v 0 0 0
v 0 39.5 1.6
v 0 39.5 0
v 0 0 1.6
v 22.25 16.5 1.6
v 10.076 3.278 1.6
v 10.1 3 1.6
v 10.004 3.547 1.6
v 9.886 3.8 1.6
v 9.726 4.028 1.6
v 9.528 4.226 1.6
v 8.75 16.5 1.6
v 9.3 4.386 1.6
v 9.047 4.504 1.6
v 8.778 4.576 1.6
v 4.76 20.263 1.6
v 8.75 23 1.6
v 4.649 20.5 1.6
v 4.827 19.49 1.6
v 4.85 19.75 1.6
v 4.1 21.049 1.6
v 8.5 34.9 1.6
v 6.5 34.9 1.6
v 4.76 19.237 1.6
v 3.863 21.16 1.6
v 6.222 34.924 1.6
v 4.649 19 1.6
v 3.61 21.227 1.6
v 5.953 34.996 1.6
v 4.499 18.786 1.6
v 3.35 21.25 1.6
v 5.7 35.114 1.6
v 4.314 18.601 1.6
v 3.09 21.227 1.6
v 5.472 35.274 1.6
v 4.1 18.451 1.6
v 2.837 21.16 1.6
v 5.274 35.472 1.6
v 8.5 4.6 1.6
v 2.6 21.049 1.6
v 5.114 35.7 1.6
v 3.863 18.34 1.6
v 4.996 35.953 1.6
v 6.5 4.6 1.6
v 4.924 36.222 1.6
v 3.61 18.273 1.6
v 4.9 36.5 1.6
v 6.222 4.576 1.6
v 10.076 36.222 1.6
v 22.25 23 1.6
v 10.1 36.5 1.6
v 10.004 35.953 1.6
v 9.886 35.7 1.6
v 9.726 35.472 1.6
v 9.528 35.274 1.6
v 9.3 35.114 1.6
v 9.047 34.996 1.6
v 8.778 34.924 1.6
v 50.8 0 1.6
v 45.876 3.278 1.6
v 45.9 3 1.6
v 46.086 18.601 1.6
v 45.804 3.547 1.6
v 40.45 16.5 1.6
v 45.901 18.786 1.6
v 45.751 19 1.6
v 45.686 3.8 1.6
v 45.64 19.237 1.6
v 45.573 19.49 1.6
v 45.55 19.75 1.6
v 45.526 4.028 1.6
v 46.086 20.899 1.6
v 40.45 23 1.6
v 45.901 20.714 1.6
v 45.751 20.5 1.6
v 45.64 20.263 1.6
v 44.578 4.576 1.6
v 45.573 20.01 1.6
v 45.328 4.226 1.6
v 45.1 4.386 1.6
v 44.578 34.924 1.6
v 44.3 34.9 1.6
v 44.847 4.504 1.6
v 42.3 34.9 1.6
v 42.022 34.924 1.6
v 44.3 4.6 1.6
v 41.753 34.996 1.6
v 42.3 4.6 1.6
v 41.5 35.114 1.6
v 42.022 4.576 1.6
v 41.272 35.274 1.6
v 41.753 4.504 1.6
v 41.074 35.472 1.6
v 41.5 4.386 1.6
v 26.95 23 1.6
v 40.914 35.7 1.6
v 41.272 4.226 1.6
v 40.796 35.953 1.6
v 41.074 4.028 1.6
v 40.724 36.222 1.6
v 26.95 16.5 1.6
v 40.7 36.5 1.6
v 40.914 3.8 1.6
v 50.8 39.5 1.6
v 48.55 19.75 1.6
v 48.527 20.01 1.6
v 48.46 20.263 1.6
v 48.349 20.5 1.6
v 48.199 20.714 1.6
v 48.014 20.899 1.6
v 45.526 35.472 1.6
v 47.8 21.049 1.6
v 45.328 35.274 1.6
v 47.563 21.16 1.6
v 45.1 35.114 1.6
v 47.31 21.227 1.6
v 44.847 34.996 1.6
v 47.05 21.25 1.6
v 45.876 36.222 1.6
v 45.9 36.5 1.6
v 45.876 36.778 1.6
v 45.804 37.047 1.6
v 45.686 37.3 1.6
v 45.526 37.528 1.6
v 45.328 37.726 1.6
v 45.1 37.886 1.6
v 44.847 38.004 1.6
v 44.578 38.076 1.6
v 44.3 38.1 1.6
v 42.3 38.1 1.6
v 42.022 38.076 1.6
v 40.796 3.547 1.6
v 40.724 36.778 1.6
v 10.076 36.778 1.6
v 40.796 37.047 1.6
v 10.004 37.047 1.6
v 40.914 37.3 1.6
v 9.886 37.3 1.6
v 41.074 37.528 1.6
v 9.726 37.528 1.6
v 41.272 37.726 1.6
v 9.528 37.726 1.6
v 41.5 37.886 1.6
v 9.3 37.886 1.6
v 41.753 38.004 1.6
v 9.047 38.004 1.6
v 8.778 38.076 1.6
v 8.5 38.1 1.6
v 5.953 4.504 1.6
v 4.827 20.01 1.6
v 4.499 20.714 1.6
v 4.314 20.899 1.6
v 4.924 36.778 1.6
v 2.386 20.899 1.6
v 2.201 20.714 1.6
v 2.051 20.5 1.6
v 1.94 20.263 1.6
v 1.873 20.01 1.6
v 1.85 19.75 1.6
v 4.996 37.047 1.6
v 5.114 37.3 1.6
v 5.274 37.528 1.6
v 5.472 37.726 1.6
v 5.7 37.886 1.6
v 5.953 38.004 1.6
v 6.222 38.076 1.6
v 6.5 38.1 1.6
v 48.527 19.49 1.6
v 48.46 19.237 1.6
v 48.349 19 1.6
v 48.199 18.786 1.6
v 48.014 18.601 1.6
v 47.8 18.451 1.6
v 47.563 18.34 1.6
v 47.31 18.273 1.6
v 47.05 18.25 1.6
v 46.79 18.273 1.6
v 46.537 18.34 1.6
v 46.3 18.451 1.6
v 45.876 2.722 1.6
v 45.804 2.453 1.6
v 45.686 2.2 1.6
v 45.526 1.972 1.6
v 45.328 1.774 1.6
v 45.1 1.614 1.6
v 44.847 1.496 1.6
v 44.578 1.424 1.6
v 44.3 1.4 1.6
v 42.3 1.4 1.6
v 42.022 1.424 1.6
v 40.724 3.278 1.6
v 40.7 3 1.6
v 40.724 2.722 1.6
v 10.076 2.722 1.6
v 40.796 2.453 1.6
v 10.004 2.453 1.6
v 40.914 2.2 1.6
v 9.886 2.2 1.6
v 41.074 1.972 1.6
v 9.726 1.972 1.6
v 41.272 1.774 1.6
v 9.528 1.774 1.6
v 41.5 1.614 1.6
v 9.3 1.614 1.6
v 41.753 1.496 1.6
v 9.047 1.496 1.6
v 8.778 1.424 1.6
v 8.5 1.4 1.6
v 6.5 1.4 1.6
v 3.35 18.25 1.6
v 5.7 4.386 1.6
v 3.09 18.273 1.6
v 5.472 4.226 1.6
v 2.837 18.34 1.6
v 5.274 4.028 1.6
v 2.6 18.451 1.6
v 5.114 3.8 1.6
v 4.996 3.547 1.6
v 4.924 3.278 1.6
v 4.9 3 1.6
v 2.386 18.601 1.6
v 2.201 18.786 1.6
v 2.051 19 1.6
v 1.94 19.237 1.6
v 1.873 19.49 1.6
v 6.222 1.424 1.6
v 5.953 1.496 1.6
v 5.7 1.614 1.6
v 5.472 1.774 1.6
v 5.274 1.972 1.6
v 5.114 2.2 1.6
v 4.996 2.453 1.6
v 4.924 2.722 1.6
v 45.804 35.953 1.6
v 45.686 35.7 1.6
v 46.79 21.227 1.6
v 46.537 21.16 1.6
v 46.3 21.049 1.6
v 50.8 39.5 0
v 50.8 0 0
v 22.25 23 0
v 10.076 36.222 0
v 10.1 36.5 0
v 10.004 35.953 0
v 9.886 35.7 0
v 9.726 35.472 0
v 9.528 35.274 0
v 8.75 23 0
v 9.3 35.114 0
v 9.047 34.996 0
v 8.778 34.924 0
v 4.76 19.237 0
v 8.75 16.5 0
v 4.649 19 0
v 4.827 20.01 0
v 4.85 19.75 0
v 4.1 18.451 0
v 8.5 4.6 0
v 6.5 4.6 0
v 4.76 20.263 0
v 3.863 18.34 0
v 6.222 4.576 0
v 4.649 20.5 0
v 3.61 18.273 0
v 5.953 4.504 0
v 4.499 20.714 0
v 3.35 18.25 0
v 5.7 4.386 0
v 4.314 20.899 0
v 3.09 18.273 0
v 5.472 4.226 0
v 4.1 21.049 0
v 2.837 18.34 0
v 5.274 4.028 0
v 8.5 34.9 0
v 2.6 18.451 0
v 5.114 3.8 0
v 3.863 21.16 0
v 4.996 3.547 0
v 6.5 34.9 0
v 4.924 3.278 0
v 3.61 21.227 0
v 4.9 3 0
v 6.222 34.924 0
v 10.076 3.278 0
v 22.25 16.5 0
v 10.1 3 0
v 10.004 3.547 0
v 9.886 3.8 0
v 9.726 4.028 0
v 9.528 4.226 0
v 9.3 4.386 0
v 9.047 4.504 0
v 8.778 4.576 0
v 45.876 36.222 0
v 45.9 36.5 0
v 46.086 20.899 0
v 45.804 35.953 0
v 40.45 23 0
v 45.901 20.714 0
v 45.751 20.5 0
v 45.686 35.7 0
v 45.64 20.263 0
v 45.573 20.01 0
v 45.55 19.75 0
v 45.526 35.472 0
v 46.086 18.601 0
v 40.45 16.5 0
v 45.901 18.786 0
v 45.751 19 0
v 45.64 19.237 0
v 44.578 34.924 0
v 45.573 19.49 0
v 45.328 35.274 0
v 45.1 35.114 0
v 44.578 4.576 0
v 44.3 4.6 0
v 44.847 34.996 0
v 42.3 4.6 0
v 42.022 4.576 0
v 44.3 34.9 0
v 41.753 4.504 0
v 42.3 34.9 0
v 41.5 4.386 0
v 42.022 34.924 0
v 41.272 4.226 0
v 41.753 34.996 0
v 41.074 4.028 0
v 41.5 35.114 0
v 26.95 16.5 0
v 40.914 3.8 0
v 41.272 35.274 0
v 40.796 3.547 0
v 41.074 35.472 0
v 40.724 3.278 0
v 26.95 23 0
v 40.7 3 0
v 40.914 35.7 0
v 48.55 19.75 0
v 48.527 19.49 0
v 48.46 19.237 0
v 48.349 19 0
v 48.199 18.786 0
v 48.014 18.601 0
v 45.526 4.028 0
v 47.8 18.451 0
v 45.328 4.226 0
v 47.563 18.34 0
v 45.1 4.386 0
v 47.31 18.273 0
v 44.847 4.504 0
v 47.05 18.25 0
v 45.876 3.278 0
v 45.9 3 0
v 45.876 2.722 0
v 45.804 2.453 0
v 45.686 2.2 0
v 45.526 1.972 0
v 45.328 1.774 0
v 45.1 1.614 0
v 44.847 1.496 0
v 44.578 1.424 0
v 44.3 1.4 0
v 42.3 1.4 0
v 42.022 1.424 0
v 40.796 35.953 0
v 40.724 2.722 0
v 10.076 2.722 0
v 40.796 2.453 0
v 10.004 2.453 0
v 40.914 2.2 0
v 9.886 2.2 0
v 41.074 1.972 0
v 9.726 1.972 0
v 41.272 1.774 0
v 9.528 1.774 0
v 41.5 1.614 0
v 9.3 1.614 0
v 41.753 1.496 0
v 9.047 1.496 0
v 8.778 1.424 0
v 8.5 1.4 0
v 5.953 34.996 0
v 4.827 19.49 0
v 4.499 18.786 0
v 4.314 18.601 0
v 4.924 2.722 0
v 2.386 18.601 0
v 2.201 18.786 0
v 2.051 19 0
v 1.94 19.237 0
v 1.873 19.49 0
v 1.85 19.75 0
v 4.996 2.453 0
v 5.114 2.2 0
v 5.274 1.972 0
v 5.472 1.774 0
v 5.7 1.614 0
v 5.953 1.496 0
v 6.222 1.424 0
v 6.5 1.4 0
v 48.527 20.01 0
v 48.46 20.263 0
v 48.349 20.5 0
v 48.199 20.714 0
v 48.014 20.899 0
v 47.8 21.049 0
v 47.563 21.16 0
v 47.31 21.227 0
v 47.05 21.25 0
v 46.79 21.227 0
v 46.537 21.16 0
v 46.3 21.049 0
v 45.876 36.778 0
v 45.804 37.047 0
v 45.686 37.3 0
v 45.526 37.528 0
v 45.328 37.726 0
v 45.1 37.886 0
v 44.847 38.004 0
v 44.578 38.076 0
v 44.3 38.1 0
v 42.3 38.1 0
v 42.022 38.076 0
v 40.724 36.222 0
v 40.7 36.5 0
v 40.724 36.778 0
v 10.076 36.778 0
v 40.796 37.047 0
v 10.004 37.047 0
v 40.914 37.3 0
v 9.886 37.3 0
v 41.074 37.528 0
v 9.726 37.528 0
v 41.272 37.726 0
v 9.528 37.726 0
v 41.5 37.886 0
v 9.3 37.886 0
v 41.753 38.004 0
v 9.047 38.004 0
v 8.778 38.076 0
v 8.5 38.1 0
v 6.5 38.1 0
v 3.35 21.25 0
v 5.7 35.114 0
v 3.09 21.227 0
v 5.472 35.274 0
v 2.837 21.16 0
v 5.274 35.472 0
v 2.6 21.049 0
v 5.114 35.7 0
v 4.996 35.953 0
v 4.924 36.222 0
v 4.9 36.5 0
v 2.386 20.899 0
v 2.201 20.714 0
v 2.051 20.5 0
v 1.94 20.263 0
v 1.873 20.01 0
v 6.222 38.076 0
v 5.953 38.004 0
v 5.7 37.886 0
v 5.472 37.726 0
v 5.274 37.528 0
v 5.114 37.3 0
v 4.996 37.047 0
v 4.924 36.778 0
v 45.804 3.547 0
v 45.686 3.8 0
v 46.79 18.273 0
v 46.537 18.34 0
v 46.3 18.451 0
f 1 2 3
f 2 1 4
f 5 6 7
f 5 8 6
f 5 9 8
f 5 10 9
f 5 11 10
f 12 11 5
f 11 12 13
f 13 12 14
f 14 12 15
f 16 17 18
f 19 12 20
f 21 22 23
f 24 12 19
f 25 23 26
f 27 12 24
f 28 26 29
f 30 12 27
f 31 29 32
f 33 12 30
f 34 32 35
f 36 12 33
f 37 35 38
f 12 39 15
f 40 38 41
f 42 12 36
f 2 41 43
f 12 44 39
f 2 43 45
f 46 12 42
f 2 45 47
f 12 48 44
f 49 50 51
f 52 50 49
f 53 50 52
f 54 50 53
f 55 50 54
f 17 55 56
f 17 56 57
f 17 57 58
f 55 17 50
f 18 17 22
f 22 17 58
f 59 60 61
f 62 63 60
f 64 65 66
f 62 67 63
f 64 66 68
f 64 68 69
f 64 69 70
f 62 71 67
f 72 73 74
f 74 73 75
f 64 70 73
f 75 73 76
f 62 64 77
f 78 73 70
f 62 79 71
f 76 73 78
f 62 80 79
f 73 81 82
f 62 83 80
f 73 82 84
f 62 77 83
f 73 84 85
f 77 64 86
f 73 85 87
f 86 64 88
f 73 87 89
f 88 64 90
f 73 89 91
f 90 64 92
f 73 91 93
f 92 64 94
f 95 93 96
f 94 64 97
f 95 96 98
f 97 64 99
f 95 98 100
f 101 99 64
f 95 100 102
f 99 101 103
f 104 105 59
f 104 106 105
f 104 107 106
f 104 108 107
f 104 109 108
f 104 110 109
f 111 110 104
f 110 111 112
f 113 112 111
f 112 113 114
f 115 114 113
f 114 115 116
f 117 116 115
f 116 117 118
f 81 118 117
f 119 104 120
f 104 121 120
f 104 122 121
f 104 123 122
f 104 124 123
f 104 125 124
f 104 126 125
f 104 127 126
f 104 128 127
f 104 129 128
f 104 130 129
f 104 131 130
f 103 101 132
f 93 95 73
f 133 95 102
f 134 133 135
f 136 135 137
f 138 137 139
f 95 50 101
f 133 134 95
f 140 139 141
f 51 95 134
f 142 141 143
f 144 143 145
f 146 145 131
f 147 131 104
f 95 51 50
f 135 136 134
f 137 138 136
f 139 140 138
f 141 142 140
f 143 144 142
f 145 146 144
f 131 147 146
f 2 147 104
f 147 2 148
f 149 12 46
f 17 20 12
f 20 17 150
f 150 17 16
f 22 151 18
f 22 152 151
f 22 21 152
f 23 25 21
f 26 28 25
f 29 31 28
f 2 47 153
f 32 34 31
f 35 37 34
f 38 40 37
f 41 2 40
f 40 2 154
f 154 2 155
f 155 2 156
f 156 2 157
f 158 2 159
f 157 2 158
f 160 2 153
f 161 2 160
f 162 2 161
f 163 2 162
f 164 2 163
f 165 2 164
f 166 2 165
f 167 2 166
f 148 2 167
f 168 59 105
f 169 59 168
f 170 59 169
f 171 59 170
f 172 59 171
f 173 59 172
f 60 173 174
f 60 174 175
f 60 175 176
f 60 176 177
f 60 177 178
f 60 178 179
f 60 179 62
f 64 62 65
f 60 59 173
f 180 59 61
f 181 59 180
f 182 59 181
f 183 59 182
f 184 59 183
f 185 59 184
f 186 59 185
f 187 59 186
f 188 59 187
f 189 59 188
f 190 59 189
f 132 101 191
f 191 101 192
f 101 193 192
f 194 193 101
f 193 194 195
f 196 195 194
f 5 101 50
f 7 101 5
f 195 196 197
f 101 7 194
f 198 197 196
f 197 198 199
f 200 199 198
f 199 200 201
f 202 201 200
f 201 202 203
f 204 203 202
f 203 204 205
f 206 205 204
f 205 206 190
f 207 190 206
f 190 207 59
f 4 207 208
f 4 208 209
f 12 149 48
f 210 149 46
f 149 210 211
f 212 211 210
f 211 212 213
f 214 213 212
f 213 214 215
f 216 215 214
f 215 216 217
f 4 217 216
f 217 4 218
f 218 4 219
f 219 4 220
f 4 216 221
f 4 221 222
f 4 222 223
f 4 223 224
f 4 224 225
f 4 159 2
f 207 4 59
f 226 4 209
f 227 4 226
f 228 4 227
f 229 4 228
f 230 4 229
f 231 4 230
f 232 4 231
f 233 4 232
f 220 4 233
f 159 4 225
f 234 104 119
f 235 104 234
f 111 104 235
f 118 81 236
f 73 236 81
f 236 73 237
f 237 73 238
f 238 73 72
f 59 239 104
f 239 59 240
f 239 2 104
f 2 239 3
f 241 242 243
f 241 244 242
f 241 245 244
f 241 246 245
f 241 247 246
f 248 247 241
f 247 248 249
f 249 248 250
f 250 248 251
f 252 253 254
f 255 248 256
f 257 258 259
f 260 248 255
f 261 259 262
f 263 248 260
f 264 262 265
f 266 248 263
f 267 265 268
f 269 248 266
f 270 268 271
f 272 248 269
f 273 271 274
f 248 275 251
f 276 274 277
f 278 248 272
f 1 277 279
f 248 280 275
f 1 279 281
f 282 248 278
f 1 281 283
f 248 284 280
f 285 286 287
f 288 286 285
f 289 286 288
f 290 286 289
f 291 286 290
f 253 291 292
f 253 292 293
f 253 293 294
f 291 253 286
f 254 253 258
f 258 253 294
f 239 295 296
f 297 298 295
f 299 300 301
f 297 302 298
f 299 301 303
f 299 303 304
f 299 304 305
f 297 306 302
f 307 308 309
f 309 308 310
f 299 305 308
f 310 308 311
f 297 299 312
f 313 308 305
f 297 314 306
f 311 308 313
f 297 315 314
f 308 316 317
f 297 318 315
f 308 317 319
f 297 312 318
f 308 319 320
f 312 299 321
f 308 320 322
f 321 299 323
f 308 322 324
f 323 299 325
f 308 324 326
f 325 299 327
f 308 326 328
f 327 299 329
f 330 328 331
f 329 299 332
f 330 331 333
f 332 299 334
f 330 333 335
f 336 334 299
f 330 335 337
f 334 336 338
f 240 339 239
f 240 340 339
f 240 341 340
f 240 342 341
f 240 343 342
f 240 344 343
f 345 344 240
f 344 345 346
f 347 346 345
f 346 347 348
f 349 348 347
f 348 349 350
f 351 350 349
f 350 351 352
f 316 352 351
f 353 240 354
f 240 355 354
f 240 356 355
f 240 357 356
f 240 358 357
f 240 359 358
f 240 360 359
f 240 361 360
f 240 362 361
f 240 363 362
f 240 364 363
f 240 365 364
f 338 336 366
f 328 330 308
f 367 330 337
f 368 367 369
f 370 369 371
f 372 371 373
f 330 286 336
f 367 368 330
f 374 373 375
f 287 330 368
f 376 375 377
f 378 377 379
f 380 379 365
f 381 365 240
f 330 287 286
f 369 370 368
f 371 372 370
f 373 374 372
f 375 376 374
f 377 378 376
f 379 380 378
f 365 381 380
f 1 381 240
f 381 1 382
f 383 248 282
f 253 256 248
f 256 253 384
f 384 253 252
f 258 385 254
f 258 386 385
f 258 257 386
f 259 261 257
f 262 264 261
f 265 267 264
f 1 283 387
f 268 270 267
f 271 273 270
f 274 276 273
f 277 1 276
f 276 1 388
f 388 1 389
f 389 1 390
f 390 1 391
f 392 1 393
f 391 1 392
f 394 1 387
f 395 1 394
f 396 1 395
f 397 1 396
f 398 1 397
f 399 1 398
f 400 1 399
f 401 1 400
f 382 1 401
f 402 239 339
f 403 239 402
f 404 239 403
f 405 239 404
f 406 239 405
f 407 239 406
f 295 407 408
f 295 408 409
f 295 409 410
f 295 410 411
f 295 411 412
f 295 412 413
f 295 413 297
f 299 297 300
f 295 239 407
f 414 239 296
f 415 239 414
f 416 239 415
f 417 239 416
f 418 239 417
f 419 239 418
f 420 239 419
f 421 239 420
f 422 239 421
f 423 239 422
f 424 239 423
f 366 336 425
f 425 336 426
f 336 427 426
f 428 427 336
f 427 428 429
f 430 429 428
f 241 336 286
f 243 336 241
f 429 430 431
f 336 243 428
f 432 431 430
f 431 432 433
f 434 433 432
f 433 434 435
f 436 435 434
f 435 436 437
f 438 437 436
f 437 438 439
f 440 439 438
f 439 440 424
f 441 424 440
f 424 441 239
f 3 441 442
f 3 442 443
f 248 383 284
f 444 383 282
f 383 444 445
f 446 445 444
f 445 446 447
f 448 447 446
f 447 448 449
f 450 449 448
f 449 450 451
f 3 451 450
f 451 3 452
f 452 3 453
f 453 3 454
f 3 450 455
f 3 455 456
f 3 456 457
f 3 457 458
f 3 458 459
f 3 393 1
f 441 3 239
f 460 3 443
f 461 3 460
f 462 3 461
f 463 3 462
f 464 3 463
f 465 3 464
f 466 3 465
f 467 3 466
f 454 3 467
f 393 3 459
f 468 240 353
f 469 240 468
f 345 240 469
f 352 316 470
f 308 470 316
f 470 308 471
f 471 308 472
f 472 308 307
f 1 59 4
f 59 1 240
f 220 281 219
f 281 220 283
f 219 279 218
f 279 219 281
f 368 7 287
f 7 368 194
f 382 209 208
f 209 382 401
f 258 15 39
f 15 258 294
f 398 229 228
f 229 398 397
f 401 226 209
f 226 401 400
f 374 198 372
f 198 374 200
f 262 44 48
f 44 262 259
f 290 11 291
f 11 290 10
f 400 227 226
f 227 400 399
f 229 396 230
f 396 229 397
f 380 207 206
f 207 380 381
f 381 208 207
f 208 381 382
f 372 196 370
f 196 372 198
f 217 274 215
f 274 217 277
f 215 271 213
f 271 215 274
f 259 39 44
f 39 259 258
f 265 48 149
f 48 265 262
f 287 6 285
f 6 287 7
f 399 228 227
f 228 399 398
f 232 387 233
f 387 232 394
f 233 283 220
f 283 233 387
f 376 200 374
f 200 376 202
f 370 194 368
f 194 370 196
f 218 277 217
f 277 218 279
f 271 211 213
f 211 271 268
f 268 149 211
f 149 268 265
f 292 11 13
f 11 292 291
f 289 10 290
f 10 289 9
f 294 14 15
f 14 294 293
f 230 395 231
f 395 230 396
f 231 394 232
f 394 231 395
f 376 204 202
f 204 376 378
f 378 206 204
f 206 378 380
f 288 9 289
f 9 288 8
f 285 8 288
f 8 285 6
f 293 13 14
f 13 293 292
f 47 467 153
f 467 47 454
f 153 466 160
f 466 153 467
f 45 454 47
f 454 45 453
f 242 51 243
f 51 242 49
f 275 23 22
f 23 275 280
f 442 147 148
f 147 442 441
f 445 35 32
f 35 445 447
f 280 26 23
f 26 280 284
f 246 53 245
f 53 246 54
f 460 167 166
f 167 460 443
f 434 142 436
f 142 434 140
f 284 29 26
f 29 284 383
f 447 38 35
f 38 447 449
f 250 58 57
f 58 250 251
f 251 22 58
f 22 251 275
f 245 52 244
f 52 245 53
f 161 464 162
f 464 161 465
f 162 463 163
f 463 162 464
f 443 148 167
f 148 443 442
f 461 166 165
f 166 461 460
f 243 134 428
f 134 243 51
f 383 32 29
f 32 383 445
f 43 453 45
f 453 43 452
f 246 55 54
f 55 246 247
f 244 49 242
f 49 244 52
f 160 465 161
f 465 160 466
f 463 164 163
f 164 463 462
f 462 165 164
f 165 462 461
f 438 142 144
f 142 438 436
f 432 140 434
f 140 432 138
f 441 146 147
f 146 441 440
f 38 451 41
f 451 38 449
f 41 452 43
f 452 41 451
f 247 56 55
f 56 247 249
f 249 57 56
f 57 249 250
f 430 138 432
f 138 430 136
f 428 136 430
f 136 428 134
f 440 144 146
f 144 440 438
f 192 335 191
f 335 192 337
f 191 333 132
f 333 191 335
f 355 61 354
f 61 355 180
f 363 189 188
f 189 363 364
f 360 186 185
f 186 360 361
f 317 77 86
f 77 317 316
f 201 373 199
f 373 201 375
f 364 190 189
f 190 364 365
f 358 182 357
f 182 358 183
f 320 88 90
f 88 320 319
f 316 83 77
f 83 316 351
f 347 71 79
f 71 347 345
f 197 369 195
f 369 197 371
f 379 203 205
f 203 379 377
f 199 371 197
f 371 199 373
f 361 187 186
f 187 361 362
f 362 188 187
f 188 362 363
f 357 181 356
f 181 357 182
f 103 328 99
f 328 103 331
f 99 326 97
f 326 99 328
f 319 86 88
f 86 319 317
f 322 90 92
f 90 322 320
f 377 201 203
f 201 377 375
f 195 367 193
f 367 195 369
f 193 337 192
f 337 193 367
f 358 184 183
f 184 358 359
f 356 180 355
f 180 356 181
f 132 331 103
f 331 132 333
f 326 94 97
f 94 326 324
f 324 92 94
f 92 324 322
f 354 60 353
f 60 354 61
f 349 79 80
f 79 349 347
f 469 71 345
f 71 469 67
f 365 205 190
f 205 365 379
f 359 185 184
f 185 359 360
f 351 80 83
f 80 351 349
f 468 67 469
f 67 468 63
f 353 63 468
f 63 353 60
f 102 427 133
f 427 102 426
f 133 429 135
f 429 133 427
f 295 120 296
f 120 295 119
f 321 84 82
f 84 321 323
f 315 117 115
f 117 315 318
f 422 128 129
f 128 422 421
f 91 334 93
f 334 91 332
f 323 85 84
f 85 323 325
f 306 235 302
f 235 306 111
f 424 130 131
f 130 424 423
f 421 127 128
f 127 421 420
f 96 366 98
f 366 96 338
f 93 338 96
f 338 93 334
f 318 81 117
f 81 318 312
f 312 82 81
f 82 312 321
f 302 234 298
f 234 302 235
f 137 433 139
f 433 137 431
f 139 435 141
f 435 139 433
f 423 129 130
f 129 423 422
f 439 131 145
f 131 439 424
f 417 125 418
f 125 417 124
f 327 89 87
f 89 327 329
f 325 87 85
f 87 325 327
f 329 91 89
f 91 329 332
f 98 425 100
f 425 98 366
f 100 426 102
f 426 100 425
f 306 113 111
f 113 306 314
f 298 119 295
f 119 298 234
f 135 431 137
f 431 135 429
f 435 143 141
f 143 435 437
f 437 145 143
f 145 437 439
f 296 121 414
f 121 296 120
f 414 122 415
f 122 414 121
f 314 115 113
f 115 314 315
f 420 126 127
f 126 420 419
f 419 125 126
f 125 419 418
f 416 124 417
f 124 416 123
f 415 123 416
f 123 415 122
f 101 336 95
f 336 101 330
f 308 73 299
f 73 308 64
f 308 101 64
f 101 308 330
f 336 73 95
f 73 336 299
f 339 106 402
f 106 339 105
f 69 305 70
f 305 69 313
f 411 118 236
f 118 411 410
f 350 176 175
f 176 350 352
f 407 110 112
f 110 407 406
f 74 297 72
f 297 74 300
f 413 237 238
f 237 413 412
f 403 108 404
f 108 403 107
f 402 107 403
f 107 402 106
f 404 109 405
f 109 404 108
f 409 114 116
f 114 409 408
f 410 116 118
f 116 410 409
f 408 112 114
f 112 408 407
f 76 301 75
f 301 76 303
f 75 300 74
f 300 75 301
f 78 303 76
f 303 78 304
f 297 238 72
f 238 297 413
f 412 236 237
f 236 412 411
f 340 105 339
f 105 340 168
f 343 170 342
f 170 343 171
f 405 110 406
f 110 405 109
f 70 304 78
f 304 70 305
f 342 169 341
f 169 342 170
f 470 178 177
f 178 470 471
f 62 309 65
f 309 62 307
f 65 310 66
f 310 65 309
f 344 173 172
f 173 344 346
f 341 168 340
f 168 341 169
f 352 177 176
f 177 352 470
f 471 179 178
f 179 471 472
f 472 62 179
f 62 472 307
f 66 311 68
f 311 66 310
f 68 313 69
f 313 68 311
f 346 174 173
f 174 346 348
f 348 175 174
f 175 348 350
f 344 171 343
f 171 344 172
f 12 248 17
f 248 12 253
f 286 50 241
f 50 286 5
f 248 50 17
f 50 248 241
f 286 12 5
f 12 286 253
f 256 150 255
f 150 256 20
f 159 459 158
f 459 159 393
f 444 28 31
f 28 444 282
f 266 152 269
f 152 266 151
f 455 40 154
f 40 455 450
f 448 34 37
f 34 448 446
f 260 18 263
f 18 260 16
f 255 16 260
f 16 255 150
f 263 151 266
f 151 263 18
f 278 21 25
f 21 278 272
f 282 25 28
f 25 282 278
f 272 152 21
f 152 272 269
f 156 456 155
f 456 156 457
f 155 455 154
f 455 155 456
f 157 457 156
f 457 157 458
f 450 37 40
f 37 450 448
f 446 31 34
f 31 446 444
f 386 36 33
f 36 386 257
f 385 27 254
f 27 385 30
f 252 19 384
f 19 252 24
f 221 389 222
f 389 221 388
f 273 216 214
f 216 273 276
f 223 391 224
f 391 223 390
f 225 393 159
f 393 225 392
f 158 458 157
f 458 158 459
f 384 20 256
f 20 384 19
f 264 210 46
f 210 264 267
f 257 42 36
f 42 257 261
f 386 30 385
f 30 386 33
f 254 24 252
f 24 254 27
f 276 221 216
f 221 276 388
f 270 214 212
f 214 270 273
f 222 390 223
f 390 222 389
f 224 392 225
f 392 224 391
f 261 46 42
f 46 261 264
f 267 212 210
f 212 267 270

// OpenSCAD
// file: ../MODULES/roundedcube.scad
// Original source: https://danielupshaw.com/openscad-rounded-corners/

// use this for working
$fs = 0.2;
// use the for rendering
// $fs = 0.02;

module roundedcube(size = [1, 1, 1], center = false, radius = 0.5, apply_to = "all") {
	// If single value, convert to [x, y, z] vector
	size = (size[0] == undef) ? [size, size, size] : size;

	translate_min = radius;
	translate_xmax = size[0] - radius;
	translate_ymax = size[1] - radius;
	translate_zmax = size[2] - radius;

	diameter = radius * 2;

	module build_point(type = "sphere", rotate = [0, 0, 0]) {
		if (type == "sphere") {
			sphere(r = radius);
		} else if (type == "cylinder") {
			rotate(a = rotate)
			cylinder(h = diameter, r = radius, center = true);
		}
	}

	obj_translate = (center == false) ?
		[0, 0, 0] : [
			-(size[0] / 2),
			-(size[1] / 2),
			-(size[2] / 2)
		];

	translate(v = obj_translate) {
		hull() {
			for (translate_x = [translate_min, translate_xmax]) {
				x_at = (translate_x == translate_min) ? "min" : "max";
				for (translate_y = [translate_min, translate_ymax]) {
					y_at = (translate_y == translate_min) ? "min" : "max";
					for (translate_z = [translate_min, translate_zmax]) {
						z_at = (translate_z == translate_min) ? "min" : "max";

						translate(v = [translate_x, translate_y, translate_z])
						if (
							(apply_to == "all") ||
							(apply_to == "xmin" && x_at == "min") || (apply_to == "xmax" && x_at == "max") ||
							(apply_to == "ymin" && y_at == "min") || (apply_to == "ymax" && y_at == "max") ||
							(apply_to == "zmin" && z_at == "min") || (apply_to == "zmax" && z_at == "max")
						) {
							build_point("sphere");
						} else {
							rotate = 
								(apply_to == "xmin" || apply_to == "xmax" || apply_to == "x") ? [0, 90, 0] : (
								(apply_to == "ymin" || apply_to == "ymax" || apply_to == "y") ? [90, 90, 0] :
								[0, 0, 0]
							);
							build_point("cylinder", rotate);
						}
					}
				}
			}
		}
	}
}

module shull_cube(size = [1, 1, 1], center = false, radius = 0, apply_to = "all") {
    if (radius == 0) {
        cube(size, center);
    } else {
        roundedcube(size, center, radius, apply_to);
    }
}
// main file
use <../MODULES/roundedcube.scad>;

_DELTA = 0.01;

ONE_HP = 0.2*25.4;
ONE_U  = 39.5;  // a bit small to account for 3d print
// approximately equal to a standard PCB thickness
THICKNESS = 1.6;
MODULE_WIDTH = 10*ONE_HP;

// the main facade body
module main() {
    cube([MODULE_WIDTH, ONE_U, THICKNESS]);
}

module mounting_hole(x_offset=0, y_offset=0) {
    $fn = 36;
    MOUNTING_HOLE_DIAMETER = 3.2;
    translate([x_offset, y_offset, THICKNESS/2])
        hull() {
            translate([-1, 0, 0])
                cylinder(THICKNESS+_DELTA, MOUNTING_HOLE_DIAMETER/2, MOUNTING_HOLE_DIAMETER/2, center=true);
            translate([1, 0, 0])
                cylinder(THICKNESS+_DELTA, MOUNTING_HOLE_DIAMETER/2, MOUNTING_HOLE_DIAMETER/2, center=true);
        }
}

module usb_bracket(x_offset, y_offset) {
    $fn = 36;
    usb_gap    = 4.7;
    usb_width  = 13.5;
    usb_height = 6.5;
    hole_left  = 18.9 + usb_gap/2;
    hole_right = 20.1 + usb_gap/2;
    hole_diameter = 3;
    translate([x_offset, y_offset, 0]) {
        // right usb cutout
        translate([usb_width/2 + usb_gap/2, 0, 0])
            cube([usb_width, usb_height, THICKNESS], center=true);
        // right mounting hole
        translate([hole_right, 0,])
            cylinder(THICKNESS, hole_diameter/2, hole_diameter/2, center=true);
        // left usb cutout
        translate([-usb_width/2 - usb_gap/2, 0, 0])
            cube([usb_width, usb_height, THICKNESS], center=true);
        // left mounting hole
        translate([-hole_left, 0, 0])
            cylinder(THICKNESS, hole_diameter/2, hole_diameter/2, center=true);
    }
}

difference() {
    main();
    // These should work for any module
    mounting_hole(7.5, 3);
    mounting_hole(7.5, ONE_U-3);
    mounting_hole(MODULE_WIDTH-7.5, 3);
    mounting_hole(MODULE_WIDTH-7.5, ONE_U-3);
    resize([0, 0, 5])
        usb_bracket(MODULE_WIDTH/2-0.8, ONE_U/2);
}
